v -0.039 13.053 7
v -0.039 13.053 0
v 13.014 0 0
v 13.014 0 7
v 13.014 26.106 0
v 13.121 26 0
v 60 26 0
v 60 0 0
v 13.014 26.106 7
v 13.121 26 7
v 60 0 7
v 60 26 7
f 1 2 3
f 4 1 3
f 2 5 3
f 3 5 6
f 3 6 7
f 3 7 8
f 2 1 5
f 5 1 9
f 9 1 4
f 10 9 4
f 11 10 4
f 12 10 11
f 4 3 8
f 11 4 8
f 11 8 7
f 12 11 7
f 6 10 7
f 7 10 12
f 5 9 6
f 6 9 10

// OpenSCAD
//Азотистые основания:   
x=60;     
y=26;       
z=7;      
t=0;      
edge=0.71*y;    
dx=edge*1.41;   
//Тимин         
translate ([dx/2,t,0]) {   
  color("Lime") translate ([0,0,0]) cube ([x-dx/2,y,z]);    
  color("Lime") rotate ([0,0,45]) cube ([edge,edge,z]);     
}   
